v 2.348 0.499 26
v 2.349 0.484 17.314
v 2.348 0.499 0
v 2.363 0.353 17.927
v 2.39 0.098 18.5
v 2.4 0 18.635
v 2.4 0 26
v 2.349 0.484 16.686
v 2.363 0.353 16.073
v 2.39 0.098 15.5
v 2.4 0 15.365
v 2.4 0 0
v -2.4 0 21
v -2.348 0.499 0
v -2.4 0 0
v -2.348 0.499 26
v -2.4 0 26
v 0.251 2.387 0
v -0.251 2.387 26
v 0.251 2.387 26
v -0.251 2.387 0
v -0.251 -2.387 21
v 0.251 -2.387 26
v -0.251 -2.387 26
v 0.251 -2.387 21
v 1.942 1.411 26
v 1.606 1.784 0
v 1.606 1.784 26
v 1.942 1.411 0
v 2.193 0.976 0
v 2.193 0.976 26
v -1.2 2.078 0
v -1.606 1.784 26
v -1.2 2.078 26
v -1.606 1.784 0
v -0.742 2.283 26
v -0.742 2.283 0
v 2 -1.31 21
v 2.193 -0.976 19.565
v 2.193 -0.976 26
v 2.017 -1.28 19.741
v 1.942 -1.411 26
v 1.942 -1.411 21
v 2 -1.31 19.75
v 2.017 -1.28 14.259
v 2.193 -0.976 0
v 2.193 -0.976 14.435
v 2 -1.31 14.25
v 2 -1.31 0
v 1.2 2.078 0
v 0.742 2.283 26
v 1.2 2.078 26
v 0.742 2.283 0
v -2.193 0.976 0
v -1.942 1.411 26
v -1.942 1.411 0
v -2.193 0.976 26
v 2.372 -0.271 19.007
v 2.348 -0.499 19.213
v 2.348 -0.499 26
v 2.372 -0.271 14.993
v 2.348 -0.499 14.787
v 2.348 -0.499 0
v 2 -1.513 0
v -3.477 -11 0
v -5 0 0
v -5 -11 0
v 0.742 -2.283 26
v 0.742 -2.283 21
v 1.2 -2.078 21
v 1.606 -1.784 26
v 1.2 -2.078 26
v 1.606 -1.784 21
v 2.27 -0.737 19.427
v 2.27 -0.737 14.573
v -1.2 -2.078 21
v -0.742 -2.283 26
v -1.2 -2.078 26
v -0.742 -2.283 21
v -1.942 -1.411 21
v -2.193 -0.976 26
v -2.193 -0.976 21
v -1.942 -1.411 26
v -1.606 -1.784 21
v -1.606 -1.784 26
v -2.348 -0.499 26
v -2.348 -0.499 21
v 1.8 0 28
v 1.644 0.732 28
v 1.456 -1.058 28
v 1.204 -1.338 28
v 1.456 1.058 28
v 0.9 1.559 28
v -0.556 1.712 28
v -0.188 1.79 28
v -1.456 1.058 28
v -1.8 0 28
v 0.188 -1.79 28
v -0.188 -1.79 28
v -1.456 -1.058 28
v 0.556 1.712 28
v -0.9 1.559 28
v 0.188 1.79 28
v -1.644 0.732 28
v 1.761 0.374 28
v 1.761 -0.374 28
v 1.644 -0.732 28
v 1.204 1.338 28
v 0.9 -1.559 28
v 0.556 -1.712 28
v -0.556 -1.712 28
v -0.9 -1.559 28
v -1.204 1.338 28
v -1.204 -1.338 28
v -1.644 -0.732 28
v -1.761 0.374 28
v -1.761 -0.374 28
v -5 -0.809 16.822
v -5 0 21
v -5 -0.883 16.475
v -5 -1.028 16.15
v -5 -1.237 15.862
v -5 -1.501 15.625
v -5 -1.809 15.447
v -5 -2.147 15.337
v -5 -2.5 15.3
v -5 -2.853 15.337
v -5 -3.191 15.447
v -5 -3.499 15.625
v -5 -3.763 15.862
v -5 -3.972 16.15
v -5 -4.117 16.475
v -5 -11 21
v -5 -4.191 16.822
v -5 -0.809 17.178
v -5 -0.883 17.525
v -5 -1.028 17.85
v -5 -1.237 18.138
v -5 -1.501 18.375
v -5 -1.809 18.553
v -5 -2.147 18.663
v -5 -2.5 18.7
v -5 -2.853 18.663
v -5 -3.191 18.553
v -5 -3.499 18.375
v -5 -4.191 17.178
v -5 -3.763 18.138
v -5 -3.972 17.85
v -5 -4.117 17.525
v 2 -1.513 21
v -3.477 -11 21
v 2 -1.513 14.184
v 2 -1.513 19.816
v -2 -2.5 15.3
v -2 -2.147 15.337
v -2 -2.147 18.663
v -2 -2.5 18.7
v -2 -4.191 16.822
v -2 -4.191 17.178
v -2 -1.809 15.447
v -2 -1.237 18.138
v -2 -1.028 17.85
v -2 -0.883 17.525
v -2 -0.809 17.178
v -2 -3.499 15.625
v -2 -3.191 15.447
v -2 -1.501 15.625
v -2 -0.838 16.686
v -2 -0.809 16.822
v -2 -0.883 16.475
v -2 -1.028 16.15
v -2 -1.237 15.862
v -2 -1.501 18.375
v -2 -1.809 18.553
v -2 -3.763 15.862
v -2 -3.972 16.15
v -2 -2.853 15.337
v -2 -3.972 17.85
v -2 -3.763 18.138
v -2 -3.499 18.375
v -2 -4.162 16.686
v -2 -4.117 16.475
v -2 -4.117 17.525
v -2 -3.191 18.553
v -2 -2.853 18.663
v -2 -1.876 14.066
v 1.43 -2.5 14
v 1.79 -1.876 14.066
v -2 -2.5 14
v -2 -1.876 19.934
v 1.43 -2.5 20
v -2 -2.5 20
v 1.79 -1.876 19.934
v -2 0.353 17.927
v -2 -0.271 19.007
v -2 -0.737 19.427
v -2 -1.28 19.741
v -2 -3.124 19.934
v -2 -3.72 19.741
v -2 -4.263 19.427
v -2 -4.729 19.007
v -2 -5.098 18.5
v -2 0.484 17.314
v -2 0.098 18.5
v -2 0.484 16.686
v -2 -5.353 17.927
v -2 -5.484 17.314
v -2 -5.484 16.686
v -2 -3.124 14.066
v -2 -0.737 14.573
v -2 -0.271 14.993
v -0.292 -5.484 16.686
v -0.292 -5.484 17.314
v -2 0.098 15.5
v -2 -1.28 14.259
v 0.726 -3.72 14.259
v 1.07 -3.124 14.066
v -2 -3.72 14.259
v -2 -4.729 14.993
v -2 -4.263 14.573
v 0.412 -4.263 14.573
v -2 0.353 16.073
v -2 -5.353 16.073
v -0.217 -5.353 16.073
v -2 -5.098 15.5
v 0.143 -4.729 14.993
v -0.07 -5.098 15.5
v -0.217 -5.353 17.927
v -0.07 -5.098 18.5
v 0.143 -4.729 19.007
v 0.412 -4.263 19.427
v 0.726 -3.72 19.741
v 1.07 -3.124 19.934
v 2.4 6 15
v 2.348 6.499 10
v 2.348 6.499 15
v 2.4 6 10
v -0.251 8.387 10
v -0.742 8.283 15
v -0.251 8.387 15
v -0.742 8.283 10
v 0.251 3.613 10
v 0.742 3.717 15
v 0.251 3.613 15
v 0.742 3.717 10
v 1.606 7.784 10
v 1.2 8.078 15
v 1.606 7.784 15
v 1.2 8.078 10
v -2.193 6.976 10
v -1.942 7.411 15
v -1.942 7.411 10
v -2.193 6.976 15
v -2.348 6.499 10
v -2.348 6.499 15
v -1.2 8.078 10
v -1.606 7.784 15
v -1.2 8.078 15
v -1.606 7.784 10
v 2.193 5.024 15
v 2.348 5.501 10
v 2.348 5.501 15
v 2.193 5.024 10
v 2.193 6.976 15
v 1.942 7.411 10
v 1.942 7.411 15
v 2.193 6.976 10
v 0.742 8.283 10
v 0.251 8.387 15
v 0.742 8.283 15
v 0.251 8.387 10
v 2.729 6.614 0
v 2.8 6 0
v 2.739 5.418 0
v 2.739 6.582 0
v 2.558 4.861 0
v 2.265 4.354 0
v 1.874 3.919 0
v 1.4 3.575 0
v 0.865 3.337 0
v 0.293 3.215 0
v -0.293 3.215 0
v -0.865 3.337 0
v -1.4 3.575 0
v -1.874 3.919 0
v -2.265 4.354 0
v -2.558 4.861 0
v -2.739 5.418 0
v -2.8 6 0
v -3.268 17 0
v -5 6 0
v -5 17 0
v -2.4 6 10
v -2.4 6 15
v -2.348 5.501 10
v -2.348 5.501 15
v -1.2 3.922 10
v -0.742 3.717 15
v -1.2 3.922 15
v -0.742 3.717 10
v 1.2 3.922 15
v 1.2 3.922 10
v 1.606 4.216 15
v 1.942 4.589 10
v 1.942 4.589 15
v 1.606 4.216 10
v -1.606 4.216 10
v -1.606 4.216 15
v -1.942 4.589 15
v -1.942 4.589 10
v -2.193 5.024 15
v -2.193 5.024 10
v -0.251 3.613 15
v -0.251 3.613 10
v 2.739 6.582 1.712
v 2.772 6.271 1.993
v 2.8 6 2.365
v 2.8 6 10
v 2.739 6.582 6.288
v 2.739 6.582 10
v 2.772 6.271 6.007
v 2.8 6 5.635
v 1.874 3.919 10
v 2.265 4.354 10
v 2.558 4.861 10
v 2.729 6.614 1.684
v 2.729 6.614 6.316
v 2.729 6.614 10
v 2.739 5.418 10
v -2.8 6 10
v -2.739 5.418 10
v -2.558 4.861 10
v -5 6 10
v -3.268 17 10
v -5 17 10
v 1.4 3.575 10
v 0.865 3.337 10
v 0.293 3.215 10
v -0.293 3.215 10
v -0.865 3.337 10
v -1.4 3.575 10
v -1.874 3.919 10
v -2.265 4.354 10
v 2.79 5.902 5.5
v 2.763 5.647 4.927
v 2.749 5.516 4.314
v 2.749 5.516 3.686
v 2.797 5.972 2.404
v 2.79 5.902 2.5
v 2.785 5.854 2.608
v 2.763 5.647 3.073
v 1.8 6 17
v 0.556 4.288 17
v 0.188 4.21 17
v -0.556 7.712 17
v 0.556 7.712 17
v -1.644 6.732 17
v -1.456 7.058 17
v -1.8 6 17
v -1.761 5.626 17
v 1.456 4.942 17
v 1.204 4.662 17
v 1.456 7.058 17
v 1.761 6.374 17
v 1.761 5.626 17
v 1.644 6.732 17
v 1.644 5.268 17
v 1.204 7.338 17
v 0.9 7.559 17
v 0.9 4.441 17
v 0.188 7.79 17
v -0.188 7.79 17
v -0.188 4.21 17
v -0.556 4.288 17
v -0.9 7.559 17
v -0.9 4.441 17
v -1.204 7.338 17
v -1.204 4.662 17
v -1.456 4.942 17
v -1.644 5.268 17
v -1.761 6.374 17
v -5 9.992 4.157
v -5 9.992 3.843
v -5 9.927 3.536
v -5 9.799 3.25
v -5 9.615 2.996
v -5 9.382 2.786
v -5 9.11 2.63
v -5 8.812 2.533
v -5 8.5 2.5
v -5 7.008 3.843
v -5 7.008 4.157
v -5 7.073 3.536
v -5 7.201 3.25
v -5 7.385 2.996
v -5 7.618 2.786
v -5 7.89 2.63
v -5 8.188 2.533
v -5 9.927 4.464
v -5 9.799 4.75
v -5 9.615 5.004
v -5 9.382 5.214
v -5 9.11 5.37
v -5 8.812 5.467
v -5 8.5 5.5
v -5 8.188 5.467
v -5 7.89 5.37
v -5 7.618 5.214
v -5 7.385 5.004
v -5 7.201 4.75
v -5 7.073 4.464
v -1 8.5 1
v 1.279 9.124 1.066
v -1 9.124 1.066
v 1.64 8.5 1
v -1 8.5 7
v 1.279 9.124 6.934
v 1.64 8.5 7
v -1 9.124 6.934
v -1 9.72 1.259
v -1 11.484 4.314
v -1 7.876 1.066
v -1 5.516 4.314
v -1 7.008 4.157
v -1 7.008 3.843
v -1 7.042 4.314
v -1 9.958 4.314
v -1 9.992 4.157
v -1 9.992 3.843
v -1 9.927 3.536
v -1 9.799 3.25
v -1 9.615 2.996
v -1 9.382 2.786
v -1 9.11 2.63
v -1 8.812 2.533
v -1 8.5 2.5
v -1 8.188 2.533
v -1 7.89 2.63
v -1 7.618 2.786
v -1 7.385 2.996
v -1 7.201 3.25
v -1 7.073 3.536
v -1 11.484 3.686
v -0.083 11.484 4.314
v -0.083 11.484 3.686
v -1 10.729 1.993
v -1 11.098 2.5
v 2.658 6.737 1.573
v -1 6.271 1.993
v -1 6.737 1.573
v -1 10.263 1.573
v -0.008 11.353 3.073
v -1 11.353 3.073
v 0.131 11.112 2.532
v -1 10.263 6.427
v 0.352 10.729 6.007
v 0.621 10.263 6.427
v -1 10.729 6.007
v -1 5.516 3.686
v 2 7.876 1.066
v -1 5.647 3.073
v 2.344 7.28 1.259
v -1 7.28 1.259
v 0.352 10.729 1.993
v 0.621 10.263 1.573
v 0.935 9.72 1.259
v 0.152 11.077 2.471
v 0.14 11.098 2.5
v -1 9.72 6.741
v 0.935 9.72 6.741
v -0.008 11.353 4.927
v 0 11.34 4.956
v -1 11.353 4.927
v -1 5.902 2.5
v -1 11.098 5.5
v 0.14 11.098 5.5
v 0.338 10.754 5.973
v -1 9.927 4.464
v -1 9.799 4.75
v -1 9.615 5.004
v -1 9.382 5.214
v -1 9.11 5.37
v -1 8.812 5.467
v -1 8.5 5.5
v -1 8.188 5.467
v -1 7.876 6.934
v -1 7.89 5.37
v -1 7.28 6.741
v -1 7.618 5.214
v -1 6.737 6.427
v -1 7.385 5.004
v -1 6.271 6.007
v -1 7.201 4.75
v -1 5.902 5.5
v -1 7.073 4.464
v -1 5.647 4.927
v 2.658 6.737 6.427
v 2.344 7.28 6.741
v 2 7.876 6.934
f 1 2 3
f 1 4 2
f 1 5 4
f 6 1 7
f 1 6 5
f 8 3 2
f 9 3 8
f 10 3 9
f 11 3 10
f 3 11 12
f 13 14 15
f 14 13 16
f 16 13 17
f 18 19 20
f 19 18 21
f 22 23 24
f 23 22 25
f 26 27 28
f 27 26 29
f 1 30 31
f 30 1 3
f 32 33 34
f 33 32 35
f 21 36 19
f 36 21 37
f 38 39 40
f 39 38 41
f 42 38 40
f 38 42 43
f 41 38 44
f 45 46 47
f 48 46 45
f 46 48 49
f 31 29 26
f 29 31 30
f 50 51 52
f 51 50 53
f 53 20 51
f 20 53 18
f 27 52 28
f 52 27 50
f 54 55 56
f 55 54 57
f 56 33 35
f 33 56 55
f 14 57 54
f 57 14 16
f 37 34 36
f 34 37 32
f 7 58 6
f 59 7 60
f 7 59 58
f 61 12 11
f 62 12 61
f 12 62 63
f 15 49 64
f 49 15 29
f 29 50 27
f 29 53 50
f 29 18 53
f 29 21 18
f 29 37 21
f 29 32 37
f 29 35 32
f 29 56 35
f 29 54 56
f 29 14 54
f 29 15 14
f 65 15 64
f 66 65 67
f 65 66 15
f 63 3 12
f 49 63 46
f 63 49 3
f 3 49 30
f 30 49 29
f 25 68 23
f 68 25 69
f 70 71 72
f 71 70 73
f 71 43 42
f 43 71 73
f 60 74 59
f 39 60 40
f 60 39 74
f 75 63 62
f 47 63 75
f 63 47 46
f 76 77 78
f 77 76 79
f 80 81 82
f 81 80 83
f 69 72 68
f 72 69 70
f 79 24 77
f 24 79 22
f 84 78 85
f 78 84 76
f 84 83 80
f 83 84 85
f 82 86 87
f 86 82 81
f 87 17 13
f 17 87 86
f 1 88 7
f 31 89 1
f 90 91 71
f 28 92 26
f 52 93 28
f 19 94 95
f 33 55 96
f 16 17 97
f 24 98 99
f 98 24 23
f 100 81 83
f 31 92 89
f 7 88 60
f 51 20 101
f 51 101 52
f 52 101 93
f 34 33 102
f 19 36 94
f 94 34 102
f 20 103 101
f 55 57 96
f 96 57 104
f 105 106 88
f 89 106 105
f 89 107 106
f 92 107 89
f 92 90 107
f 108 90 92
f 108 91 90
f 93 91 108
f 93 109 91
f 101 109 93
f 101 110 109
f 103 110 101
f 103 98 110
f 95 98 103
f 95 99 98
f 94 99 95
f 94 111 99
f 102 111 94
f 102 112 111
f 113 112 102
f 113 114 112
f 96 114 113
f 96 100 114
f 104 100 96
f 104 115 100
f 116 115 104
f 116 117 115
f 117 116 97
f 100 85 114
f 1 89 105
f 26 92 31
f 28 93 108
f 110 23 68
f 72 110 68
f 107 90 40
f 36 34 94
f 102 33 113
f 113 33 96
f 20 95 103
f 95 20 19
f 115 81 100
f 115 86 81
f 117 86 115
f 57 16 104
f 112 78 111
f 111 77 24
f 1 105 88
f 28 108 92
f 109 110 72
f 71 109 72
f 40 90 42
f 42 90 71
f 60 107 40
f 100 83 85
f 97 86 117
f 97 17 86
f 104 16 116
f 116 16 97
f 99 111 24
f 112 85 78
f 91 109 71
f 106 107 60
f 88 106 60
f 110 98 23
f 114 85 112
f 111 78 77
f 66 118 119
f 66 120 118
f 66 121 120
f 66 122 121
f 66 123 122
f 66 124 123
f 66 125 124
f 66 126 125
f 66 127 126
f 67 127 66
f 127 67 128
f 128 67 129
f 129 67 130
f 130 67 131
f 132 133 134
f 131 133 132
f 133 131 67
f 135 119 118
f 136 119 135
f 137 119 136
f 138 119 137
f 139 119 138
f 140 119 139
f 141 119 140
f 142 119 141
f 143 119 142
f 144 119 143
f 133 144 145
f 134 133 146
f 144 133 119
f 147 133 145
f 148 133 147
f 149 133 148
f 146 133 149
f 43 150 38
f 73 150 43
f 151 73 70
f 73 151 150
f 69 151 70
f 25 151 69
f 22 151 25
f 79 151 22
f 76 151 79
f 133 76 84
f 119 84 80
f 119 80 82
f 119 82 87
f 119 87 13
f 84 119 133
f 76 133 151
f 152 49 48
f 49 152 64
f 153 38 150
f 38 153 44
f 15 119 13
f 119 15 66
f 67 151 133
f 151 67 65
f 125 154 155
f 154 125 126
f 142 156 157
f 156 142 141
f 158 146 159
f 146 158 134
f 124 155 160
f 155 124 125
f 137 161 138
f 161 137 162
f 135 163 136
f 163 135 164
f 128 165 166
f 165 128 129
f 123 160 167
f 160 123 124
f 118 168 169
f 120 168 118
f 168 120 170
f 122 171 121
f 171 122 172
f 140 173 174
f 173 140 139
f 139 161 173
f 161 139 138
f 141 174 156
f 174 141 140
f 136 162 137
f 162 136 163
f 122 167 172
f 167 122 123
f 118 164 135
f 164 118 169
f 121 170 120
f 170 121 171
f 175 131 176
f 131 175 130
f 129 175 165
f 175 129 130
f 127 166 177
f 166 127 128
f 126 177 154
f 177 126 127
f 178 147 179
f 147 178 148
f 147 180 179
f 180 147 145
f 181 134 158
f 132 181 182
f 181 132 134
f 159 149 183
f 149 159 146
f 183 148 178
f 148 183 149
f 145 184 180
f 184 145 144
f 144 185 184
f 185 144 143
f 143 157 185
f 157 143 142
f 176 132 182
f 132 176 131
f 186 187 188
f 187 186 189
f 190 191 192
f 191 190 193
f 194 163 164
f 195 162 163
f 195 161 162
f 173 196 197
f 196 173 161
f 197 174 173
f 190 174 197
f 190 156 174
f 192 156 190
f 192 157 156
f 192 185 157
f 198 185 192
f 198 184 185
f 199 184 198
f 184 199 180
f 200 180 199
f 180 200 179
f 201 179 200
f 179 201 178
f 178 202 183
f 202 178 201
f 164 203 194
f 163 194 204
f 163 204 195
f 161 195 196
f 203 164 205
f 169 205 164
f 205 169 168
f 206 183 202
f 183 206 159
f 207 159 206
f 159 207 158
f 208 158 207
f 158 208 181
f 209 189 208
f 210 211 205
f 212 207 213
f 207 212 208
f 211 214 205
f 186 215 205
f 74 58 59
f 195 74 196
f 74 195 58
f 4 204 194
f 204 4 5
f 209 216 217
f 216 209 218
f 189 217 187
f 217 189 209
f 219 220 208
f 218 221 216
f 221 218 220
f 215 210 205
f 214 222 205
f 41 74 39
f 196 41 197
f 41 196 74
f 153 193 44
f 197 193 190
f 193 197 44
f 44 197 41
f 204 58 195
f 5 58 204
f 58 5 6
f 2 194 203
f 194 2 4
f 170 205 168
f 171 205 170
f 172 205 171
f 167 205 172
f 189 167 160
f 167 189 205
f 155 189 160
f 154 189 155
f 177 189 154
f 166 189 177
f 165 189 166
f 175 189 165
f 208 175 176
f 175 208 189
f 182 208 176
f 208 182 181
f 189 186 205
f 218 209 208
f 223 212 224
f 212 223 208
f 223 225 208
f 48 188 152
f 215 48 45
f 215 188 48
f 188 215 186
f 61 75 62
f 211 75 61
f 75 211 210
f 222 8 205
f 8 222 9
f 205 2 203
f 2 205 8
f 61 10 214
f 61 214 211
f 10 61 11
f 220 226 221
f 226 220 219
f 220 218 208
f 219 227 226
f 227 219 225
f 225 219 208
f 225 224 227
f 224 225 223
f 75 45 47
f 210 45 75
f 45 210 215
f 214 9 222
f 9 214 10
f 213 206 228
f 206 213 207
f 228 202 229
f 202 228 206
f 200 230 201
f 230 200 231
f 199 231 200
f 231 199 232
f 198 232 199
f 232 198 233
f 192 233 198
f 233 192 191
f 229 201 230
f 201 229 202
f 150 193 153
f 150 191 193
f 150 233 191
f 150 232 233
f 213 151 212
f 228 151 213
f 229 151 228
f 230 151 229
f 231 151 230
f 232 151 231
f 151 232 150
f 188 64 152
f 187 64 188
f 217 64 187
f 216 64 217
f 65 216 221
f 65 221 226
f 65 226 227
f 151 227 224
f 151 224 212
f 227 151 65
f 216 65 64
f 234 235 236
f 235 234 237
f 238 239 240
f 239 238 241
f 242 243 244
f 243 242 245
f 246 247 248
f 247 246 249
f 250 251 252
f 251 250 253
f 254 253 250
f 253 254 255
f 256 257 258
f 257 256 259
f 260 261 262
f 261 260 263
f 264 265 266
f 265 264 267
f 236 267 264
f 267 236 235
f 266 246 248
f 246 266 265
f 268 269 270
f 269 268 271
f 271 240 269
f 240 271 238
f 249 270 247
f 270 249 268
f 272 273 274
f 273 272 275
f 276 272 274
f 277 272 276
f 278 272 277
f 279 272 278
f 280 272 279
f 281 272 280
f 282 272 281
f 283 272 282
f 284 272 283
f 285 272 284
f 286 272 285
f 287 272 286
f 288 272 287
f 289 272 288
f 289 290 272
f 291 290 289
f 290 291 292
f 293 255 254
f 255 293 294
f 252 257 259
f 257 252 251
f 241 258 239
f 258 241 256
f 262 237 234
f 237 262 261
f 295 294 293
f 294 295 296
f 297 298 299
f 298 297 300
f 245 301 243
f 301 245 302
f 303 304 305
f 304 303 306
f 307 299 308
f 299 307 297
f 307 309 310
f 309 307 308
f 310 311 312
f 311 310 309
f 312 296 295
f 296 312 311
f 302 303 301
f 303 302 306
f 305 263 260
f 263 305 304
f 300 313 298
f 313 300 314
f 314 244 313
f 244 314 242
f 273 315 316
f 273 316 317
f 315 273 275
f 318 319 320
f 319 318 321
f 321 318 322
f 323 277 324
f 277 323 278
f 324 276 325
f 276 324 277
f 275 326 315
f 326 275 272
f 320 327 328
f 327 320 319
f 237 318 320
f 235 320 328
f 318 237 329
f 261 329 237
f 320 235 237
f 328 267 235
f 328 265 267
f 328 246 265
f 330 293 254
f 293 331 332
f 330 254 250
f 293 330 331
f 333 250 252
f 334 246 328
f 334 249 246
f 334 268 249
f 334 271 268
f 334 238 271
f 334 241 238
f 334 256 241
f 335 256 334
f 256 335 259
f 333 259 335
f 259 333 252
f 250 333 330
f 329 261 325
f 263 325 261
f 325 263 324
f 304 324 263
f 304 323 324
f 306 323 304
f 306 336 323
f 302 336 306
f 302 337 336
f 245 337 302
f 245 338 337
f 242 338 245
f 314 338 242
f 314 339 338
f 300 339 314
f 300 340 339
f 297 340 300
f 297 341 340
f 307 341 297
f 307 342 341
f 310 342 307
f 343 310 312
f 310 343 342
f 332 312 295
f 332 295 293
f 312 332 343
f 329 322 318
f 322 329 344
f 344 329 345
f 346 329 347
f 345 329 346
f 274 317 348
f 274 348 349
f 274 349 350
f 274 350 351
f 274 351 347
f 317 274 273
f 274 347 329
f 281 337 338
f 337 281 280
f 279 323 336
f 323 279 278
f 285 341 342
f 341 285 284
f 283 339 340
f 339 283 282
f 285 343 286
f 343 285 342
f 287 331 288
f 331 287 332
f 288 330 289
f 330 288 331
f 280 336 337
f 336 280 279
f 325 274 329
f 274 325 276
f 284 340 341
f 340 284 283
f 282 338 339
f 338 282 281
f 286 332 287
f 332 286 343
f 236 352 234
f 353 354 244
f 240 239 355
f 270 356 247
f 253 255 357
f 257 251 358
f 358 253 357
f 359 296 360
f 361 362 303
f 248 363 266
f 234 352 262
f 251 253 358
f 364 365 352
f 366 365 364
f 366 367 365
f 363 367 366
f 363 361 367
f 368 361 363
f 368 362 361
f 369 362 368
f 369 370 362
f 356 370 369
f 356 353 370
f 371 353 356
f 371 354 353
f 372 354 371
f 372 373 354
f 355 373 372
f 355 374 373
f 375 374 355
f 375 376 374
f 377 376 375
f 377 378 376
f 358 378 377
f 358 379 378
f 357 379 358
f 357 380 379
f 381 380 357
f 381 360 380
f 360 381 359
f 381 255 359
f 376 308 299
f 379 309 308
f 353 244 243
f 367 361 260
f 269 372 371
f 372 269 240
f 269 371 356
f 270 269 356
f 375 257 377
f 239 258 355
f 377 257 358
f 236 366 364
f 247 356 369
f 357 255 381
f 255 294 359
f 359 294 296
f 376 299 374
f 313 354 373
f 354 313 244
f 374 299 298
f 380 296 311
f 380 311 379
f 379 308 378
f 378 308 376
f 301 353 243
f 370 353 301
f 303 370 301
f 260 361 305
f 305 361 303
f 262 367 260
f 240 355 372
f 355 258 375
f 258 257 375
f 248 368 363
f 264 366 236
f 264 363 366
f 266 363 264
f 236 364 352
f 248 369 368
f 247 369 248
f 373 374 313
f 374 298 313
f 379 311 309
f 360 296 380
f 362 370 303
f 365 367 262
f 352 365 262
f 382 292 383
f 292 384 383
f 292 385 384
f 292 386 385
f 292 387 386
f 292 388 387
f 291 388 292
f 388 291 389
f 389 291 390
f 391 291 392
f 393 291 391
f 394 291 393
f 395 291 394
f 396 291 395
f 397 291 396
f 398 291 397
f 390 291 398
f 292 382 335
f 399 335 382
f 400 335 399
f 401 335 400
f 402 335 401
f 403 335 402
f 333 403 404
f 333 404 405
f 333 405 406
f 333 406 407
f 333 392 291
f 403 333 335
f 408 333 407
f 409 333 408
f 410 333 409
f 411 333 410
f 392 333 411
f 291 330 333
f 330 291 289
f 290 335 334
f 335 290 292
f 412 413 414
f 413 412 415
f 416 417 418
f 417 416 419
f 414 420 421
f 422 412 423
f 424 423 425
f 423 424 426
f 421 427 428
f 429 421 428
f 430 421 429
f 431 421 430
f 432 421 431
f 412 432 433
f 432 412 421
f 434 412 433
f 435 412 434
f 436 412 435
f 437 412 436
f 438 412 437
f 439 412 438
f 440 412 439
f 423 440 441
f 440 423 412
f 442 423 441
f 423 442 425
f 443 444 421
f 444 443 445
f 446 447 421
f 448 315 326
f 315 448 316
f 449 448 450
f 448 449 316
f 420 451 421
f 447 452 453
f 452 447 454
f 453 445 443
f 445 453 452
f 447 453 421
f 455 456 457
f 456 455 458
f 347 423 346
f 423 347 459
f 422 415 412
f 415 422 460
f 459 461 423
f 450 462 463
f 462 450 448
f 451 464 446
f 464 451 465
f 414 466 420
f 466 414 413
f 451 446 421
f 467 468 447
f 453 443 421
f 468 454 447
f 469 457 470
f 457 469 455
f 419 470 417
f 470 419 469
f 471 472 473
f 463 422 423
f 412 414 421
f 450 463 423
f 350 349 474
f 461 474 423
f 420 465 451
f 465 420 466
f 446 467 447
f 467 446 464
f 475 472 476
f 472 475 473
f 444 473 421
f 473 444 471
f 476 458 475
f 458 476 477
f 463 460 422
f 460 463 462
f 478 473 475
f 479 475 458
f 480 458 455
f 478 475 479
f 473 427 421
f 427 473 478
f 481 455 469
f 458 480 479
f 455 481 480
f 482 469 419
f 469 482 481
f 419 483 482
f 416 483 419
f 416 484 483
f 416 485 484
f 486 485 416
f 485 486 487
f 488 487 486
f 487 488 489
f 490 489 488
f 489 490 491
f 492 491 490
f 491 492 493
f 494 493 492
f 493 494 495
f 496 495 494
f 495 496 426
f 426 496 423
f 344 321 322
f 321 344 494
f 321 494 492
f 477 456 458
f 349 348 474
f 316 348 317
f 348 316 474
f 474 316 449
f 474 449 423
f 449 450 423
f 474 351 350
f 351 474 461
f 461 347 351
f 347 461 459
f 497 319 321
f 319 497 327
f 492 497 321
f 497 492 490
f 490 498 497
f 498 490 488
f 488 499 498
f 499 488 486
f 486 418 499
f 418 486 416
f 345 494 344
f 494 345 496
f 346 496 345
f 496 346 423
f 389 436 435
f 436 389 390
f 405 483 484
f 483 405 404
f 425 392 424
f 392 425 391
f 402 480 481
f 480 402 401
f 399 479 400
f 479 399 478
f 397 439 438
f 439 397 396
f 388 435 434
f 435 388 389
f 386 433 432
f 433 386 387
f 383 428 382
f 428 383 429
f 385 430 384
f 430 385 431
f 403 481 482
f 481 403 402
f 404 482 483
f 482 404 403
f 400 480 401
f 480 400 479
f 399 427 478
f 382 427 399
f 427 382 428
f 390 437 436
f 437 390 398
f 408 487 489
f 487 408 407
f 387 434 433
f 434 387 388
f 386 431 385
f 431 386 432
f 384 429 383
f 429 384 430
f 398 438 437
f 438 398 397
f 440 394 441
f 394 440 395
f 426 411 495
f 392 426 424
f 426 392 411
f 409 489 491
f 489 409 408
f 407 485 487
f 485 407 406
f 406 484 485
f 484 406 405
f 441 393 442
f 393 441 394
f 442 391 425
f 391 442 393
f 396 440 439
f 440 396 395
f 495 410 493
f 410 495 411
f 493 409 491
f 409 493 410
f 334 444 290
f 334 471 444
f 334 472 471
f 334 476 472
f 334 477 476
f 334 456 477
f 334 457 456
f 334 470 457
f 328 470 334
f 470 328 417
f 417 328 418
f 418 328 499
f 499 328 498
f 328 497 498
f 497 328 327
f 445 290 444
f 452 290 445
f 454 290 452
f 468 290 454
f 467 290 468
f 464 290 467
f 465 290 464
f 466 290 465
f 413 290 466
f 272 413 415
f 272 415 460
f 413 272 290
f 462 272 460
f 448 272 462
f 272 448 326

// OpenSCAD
// PRUSA iteration3
// RAMBo cover hinges
// GNU GPL v3
// Josef Průša <iam@josefprusa.cz> and contributors
// http://www.reprap.org/wiki/Prusa_Mendel
// http://prusamendel.org

module upper_hinge()
{
difference()    
{
    union(){
     cylinder( h = 26, r = 2.4, $fn=30); 
     translate([0,0,26]) cylinder( h = 2, r1 = 2.4, r2 = 1.8, $fn=30); 
     translate( [ -5 , -11 , 0 ] ) cube( [ 7 , 11 , 21 ] );  
    }
     translate( [ -12.5 , -2.5 , 17 ] ) rotate( [0,90,0] ) cylinder( h = 20, r = 1.7, $fn=30);  
     translate( [ -2 , -2.5 , 17 ] ) rotate( [0,90,0] ) cylinder( h = 9, r = 3, $fn=30); 
     translate([-2.9,-20,-1]) rotate([0,0,60]) cube([25,5,26]);   
}
}

module lower_hinge()
{
difference()
{   
   union(){ 
    translate( [ 0 , 6 , 0 ] ) cylinder( h = 15, r = 2.4, $fn=30); 
    translate( [ 0 , 6 , 0 ] ) cylinder( h = 10, r = 2.8, $fn=30);  
    translate( [ 0 , 6 , 15 ] ) cylinder( h = 2, r1 = 2.4, r2=1.8, $fn=30);  
    translate( [ -5 , 6 , 0 ] ) cube( [ 7 , 11 , 10 ] ); 
   }
    translate( [ -1 , 8.5 , 4 ] ) rotate( [0,90,0] ) cylinder( h = 20, r = 3, $fn=30); 
    translate( [ -12 , 8.5 , 4 ] ) rotate( [0,90,0] ) cylinder( h = 20, r = 1.5, $fn=30); 
    translate([-5,20,-1]) rotate([0,0,-60]) cube([20,5,20]);   
}
}


upper_hinge();
lower_hinge();
